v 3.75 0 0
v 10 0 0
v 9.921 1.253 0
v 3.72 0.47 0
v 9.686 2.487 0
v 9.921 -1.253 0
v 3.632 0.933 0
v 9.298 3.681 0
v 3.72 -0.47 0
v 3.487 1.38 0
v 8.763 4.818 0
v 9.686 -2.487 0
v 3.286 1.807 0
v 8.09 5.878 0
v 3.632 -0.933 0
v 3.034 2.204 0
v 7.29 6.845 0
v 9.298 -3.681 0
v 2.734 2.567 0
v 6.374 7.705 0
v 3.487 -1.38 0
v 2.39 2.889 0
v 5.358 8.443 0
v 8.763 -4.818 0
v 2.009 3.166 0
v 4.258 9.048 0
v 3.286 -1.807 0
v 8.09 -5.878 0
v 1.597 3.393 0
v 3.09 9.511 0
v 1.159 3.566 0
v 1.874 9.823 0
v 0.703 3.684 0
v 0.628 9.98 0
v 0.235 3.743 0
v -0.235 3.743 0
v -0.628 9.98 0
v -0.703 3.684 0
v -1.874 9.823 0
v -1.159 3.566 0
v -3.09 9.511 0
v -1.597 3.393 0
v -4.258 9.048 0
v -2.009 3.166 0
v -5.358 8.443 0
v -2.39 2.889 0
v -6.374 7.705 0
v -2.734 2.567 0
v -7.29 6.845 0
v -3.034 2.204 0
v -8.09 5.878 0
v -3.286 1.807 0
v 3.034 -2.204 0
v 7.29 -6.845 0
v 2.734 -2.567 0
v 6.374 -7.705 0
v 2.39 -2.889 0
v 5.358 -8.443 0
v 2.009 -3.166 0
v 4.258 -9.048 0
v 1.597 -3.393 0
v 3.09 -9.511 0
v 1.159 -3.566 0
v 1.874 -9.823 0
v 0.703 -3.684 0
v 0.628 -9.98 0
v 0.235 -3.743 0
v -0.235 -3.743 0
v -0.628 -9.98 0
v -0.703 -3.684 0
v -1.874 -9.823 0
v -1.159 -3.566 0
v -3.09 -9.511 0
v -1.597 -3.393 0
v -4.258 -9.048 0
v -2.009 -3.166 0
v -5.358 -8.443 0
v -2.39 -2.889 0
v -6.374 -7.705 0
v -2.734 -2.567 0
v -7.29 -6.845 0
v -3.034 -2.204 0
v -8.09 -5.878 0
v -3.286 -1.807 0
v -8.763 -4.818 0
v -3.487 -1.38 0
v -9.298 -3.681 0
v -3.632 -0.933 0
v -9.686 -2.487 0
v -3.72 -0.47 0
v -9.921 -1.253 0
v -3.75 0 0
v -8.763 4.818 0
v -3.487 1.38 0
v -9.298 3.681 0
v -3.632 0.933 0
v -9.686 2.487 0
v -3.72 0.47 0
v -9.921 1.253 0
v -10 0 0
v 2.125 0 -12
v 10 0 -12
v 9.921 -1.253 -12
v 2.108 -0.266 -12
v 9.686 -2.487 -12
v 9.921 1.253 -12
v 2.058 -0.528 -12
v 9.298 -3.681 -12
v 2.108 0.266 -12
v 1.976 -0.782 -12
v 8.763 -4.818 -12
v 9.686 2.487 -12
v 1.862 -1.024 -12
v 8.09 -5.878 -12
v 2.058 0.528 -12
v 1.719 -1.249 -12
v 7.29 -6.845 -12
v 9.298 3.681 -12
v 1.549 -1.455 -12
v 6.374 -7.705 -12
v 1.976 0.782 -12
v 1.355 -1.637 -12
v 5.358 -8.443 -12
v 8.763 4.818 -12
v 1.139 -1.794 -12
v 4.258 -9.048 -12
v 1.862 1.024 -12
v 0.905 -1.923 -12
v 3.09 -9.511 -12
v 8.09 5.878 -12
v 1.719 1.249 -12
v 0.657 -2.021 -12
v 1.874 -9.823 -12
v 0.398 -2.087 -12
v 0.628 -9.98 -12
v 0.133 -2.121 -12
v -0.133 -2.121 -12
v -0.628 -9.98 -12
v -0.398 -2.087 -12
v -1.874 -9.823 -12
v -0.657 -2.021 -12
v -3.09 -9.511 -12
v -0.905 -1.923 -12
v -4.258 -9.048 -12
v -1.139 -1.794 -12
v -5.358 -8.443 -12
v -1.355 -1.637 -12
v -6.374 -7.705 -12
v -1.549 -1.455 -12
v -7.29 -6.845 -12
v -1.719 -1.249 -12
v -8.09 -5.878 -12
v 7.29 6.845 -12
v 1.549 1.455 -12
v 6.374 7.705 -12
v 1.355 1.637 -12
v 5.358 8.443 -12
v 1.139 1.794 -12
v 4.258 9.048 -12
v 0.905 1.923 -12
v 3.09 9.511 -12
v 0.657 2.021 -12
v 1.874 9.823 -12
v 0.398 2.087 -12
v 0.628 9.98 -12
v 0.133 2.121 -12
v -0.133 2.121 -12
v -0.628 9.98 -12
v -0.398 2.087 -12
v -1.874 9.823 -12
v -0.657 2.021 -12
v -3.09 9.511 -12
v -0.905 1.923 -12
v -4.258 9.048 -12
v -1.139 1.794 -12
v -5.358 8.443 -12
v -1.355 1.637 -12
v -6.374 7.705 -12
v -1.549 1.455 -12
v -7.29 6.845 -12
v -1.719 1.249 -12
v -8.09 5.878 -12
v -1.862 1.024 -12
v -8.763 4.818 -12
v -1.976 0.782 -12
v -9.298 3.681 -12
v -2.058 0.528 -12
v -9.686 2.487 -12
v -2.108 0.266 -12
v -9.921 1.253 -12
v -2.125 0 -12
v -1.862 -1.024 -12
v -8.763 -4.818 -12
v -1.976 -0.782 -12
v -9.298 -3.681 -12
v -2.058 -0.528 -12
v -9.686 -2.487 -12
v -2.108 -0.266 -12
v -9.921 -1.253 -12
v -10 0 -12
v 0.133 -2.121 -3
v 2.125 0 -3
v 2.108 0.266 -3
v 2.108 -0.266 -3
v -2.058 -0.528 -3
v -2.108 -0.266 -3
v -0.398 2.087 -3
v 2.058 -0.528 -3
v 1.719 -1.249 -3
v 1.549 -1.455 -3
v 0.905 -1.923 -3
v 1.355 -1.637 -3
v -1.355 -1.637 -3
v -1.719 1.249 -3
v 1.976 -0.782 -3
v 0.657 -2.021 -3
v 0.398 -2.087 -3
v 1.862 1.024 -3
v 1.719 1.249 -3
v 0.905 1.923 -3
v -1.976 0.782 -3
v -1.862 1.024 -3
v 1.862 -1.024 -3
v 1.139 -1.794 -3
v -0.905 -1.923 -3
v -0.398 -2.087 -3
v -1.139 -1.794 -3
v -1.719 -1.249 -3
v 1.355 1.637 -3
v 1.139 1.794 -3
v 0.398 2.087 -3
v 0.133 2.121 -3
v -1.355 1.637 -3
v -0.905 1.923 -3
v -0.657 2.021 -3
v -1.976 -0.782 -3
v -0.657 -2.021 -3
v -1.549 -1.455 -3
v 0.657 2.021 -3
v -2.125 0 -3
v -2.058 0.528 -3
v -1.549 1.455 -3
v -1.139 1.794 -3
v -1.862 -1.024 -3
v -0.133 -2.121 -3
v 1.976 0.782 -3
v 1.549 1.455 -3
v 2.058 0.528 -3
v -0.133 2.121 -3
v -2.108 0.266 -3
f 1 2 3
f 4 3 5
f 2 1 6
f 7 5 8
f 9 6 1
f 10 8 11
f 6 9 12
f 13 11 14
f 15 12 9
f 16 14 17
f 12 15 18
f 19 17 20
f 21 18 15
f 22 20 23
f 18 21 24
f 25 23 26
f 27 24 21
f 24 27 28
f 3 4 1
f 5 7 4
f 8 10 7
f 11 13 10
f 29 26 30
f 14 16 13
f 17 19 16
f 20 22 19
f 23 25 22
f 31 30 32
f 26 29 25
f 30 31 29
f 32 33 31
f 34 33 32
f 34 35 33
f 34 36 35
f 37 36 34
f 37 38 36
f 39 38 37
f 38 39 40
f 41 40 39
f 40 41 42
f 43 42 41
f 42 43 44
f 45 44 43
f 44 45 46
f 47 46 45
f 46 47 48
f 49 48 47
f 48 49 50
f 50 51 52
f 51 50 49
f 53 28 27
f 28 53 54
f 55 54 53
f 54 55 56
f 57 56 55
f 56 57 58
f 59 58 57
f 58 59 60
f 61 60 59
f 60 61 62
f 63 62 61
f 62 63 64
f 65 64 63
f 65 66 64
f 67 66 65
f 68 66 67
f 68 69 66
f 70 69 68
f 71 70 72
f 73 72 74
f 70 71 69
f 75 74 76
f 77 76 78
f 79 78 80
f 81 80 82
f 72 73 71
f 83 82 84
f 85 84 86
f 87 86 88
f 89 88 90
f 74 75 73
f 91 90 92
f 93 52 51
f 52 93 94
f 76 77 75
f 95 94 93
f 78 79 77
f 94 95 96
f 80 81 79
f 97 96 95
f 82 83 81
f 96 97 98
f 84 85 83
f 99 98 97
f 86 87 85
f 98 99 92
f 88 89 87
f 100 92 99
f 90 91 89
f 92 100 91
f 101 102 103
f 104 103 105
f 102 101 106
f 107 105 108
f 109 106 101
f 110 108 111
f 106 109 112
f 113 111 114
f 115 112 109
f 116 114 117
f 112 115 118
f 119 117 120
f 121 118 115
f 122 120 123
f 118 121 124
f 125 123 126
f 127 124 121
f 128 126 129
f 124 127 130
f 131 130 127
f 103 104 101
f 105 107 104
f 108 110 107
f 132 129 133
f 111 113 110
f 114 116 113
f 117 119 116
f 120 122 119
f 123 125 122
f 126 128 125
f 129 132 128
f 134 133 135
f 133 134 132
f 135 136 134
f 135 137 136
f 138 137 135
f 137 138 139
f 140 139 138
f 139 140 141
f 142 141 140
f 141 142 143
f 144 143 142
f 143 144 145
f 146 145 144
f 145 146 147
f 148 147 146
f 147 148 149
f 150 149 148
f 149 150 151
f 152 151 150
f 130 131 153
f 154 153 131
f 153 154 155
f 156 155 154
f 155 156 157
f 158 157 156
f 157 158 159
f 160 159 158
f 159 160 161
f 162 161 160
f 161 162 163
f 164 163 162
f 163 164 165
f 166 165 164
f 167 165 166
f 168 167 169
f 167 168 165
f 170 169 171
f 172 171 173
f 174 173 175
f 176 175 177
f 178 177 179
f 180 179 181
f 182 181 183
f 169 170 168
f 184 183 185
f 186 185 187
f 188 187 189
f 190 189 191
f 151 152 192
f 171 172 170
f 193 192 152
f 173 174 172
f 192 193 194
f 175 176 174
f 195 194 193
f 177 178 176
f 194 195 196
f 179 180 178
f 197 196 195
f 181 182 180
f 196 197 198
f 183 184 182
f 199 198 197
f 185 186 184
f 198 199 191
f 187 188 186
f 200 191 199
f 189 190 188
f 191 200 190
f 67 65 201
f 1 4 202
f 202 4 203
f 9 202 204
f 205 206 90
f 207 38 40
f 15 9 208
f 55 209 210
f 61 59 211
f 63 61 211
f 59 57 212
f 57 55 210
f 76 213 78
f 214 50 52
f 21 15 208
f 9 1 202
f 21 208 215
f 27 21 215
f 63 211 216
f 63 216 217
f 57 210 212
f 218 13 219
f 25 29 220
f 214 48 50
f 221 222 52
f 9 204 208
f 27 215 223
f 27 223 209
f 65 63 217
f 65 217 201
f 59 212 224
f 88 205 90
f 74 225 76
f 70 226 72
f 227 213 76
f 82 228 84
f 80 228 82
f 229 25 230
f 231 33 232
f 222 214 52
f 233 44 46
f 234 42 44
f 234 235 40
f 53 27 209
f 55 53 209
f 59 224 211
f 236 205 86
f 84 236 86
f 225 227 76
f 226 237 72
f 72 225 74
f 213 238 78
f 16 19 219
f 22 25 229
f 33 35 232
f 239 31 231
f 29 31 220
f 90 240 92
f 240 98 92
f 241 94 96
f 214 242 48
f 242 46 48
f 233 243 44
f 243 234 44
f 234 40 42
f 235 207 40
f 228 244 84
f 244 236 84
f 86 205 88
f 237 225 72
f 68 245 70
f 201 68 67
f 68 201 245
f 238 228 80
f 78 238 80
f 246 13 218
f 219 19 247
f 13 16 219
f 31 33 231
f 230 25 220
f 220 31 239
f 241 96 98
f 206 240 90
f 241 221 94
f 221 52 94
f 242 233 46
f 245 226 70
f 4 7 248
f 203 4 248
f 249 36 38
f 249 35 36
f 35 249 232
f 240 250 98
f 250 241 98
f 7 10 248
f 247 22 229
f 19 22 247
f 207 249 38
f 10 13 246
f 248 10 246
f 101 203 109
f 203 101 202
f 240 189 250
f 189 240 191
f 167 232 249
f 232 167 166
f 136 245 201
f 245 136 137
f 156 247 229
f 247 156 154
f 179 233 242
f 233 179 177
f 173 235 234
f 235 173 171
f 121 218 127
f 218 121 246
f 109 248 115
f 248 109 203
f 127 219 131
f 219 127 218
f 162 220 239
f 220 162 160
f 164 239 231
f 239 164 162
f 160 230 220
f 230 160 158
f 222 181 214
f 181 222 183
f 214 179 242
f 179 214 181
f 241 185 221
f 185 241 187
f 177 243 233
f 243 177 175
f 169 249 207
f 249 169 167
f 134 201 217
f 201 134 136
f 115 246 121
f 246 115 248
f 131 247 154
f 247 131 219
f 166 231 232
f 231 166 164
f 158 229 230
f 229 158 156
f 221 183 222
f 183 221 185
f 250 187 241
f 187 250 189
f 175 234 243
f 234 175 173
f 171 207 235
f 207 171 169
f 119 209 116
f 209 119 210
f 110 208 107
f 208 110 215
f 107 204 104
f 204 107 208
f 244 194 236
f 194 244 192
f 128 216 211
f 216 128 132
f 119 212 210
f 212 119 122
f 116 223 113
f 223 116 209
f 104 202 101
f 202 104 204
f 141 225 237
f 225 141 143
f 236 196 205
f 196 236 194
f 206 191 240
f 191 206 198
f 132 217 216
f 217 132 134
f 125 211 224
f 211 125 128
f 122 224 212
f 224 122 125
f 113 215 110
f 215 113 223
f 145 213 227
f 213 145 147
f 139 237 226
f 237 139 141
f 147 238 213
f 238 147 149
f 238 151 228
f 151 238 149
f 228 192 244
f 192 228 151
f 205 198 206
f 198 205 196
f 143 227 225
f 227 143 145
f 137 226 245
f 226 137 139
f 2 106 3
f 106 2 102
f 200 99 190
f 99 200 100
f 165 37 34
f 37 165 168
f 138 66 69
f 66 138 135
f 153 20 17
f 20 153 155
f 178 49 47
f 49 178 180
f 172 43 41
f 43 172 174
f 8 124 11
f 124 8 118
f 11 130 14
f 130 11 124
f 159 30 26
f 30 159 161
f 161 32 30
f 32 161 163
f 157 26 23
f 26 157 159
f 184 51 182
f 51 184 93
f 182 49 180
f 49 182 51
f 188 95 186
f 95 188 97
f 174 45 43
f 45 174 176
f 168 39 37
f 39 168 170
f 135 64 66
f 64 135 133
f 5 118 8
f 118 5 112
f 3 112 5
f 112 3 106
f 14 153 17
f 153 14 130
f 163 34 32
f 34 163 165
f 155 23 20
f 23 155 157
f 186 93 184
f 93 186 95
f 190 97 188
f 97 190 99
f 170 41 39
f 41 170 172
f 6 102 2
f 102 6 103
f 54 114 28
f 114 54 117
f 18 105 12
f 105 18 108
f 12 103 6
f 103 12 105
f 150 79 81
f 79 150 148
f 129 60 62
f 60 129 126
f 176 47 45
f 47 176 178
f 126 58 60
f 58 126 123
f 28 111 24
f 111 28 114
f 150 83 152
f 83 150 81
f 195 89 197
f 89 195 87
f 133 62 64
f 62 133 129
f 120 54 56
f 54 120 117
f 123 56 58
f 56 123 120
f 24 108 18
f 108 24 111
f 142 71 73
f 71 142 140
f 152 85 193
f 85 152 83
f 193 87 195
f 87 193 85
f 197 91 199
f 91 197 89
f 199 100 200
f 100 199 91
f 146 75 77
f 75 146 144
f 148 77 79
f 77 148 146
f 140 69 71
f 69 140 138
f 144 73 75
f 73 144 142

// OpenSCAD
$fn = 50;


difference() {
	union() {
		translate(v = [0, 0, -12.0000000000]) {
			cylinder(h = 12, r = 10.0000000000);
		}
		cylinder(h = 0, r = 13.0000000000);
	}
	union() {
		translate(v = [0, 0, 0]) {
			rotate(a = [0, 0, 0]) {
				difference() {
					union() {
						#translate(v = [0, 0, -12.0000000000]) {
							cylinder(h = 12, r = 2.0000000000);
						}
						#translate(v = [0, 0, -3]) {
							cylinder(h = 3, r1 = 2.1250000000, r2 = 3.7500000000);
						}
						#translate(v = [0, 0, -12.0000000000]) {
							cylinder(h = 12, r = 2.1250000000);
						}
						#translate(v = [0, 0, -12.0000000000]) {
							cylinder(h = 12, r = 2.0000000000);
						}
					}
					union();
				}
			}
		}
	}
}
